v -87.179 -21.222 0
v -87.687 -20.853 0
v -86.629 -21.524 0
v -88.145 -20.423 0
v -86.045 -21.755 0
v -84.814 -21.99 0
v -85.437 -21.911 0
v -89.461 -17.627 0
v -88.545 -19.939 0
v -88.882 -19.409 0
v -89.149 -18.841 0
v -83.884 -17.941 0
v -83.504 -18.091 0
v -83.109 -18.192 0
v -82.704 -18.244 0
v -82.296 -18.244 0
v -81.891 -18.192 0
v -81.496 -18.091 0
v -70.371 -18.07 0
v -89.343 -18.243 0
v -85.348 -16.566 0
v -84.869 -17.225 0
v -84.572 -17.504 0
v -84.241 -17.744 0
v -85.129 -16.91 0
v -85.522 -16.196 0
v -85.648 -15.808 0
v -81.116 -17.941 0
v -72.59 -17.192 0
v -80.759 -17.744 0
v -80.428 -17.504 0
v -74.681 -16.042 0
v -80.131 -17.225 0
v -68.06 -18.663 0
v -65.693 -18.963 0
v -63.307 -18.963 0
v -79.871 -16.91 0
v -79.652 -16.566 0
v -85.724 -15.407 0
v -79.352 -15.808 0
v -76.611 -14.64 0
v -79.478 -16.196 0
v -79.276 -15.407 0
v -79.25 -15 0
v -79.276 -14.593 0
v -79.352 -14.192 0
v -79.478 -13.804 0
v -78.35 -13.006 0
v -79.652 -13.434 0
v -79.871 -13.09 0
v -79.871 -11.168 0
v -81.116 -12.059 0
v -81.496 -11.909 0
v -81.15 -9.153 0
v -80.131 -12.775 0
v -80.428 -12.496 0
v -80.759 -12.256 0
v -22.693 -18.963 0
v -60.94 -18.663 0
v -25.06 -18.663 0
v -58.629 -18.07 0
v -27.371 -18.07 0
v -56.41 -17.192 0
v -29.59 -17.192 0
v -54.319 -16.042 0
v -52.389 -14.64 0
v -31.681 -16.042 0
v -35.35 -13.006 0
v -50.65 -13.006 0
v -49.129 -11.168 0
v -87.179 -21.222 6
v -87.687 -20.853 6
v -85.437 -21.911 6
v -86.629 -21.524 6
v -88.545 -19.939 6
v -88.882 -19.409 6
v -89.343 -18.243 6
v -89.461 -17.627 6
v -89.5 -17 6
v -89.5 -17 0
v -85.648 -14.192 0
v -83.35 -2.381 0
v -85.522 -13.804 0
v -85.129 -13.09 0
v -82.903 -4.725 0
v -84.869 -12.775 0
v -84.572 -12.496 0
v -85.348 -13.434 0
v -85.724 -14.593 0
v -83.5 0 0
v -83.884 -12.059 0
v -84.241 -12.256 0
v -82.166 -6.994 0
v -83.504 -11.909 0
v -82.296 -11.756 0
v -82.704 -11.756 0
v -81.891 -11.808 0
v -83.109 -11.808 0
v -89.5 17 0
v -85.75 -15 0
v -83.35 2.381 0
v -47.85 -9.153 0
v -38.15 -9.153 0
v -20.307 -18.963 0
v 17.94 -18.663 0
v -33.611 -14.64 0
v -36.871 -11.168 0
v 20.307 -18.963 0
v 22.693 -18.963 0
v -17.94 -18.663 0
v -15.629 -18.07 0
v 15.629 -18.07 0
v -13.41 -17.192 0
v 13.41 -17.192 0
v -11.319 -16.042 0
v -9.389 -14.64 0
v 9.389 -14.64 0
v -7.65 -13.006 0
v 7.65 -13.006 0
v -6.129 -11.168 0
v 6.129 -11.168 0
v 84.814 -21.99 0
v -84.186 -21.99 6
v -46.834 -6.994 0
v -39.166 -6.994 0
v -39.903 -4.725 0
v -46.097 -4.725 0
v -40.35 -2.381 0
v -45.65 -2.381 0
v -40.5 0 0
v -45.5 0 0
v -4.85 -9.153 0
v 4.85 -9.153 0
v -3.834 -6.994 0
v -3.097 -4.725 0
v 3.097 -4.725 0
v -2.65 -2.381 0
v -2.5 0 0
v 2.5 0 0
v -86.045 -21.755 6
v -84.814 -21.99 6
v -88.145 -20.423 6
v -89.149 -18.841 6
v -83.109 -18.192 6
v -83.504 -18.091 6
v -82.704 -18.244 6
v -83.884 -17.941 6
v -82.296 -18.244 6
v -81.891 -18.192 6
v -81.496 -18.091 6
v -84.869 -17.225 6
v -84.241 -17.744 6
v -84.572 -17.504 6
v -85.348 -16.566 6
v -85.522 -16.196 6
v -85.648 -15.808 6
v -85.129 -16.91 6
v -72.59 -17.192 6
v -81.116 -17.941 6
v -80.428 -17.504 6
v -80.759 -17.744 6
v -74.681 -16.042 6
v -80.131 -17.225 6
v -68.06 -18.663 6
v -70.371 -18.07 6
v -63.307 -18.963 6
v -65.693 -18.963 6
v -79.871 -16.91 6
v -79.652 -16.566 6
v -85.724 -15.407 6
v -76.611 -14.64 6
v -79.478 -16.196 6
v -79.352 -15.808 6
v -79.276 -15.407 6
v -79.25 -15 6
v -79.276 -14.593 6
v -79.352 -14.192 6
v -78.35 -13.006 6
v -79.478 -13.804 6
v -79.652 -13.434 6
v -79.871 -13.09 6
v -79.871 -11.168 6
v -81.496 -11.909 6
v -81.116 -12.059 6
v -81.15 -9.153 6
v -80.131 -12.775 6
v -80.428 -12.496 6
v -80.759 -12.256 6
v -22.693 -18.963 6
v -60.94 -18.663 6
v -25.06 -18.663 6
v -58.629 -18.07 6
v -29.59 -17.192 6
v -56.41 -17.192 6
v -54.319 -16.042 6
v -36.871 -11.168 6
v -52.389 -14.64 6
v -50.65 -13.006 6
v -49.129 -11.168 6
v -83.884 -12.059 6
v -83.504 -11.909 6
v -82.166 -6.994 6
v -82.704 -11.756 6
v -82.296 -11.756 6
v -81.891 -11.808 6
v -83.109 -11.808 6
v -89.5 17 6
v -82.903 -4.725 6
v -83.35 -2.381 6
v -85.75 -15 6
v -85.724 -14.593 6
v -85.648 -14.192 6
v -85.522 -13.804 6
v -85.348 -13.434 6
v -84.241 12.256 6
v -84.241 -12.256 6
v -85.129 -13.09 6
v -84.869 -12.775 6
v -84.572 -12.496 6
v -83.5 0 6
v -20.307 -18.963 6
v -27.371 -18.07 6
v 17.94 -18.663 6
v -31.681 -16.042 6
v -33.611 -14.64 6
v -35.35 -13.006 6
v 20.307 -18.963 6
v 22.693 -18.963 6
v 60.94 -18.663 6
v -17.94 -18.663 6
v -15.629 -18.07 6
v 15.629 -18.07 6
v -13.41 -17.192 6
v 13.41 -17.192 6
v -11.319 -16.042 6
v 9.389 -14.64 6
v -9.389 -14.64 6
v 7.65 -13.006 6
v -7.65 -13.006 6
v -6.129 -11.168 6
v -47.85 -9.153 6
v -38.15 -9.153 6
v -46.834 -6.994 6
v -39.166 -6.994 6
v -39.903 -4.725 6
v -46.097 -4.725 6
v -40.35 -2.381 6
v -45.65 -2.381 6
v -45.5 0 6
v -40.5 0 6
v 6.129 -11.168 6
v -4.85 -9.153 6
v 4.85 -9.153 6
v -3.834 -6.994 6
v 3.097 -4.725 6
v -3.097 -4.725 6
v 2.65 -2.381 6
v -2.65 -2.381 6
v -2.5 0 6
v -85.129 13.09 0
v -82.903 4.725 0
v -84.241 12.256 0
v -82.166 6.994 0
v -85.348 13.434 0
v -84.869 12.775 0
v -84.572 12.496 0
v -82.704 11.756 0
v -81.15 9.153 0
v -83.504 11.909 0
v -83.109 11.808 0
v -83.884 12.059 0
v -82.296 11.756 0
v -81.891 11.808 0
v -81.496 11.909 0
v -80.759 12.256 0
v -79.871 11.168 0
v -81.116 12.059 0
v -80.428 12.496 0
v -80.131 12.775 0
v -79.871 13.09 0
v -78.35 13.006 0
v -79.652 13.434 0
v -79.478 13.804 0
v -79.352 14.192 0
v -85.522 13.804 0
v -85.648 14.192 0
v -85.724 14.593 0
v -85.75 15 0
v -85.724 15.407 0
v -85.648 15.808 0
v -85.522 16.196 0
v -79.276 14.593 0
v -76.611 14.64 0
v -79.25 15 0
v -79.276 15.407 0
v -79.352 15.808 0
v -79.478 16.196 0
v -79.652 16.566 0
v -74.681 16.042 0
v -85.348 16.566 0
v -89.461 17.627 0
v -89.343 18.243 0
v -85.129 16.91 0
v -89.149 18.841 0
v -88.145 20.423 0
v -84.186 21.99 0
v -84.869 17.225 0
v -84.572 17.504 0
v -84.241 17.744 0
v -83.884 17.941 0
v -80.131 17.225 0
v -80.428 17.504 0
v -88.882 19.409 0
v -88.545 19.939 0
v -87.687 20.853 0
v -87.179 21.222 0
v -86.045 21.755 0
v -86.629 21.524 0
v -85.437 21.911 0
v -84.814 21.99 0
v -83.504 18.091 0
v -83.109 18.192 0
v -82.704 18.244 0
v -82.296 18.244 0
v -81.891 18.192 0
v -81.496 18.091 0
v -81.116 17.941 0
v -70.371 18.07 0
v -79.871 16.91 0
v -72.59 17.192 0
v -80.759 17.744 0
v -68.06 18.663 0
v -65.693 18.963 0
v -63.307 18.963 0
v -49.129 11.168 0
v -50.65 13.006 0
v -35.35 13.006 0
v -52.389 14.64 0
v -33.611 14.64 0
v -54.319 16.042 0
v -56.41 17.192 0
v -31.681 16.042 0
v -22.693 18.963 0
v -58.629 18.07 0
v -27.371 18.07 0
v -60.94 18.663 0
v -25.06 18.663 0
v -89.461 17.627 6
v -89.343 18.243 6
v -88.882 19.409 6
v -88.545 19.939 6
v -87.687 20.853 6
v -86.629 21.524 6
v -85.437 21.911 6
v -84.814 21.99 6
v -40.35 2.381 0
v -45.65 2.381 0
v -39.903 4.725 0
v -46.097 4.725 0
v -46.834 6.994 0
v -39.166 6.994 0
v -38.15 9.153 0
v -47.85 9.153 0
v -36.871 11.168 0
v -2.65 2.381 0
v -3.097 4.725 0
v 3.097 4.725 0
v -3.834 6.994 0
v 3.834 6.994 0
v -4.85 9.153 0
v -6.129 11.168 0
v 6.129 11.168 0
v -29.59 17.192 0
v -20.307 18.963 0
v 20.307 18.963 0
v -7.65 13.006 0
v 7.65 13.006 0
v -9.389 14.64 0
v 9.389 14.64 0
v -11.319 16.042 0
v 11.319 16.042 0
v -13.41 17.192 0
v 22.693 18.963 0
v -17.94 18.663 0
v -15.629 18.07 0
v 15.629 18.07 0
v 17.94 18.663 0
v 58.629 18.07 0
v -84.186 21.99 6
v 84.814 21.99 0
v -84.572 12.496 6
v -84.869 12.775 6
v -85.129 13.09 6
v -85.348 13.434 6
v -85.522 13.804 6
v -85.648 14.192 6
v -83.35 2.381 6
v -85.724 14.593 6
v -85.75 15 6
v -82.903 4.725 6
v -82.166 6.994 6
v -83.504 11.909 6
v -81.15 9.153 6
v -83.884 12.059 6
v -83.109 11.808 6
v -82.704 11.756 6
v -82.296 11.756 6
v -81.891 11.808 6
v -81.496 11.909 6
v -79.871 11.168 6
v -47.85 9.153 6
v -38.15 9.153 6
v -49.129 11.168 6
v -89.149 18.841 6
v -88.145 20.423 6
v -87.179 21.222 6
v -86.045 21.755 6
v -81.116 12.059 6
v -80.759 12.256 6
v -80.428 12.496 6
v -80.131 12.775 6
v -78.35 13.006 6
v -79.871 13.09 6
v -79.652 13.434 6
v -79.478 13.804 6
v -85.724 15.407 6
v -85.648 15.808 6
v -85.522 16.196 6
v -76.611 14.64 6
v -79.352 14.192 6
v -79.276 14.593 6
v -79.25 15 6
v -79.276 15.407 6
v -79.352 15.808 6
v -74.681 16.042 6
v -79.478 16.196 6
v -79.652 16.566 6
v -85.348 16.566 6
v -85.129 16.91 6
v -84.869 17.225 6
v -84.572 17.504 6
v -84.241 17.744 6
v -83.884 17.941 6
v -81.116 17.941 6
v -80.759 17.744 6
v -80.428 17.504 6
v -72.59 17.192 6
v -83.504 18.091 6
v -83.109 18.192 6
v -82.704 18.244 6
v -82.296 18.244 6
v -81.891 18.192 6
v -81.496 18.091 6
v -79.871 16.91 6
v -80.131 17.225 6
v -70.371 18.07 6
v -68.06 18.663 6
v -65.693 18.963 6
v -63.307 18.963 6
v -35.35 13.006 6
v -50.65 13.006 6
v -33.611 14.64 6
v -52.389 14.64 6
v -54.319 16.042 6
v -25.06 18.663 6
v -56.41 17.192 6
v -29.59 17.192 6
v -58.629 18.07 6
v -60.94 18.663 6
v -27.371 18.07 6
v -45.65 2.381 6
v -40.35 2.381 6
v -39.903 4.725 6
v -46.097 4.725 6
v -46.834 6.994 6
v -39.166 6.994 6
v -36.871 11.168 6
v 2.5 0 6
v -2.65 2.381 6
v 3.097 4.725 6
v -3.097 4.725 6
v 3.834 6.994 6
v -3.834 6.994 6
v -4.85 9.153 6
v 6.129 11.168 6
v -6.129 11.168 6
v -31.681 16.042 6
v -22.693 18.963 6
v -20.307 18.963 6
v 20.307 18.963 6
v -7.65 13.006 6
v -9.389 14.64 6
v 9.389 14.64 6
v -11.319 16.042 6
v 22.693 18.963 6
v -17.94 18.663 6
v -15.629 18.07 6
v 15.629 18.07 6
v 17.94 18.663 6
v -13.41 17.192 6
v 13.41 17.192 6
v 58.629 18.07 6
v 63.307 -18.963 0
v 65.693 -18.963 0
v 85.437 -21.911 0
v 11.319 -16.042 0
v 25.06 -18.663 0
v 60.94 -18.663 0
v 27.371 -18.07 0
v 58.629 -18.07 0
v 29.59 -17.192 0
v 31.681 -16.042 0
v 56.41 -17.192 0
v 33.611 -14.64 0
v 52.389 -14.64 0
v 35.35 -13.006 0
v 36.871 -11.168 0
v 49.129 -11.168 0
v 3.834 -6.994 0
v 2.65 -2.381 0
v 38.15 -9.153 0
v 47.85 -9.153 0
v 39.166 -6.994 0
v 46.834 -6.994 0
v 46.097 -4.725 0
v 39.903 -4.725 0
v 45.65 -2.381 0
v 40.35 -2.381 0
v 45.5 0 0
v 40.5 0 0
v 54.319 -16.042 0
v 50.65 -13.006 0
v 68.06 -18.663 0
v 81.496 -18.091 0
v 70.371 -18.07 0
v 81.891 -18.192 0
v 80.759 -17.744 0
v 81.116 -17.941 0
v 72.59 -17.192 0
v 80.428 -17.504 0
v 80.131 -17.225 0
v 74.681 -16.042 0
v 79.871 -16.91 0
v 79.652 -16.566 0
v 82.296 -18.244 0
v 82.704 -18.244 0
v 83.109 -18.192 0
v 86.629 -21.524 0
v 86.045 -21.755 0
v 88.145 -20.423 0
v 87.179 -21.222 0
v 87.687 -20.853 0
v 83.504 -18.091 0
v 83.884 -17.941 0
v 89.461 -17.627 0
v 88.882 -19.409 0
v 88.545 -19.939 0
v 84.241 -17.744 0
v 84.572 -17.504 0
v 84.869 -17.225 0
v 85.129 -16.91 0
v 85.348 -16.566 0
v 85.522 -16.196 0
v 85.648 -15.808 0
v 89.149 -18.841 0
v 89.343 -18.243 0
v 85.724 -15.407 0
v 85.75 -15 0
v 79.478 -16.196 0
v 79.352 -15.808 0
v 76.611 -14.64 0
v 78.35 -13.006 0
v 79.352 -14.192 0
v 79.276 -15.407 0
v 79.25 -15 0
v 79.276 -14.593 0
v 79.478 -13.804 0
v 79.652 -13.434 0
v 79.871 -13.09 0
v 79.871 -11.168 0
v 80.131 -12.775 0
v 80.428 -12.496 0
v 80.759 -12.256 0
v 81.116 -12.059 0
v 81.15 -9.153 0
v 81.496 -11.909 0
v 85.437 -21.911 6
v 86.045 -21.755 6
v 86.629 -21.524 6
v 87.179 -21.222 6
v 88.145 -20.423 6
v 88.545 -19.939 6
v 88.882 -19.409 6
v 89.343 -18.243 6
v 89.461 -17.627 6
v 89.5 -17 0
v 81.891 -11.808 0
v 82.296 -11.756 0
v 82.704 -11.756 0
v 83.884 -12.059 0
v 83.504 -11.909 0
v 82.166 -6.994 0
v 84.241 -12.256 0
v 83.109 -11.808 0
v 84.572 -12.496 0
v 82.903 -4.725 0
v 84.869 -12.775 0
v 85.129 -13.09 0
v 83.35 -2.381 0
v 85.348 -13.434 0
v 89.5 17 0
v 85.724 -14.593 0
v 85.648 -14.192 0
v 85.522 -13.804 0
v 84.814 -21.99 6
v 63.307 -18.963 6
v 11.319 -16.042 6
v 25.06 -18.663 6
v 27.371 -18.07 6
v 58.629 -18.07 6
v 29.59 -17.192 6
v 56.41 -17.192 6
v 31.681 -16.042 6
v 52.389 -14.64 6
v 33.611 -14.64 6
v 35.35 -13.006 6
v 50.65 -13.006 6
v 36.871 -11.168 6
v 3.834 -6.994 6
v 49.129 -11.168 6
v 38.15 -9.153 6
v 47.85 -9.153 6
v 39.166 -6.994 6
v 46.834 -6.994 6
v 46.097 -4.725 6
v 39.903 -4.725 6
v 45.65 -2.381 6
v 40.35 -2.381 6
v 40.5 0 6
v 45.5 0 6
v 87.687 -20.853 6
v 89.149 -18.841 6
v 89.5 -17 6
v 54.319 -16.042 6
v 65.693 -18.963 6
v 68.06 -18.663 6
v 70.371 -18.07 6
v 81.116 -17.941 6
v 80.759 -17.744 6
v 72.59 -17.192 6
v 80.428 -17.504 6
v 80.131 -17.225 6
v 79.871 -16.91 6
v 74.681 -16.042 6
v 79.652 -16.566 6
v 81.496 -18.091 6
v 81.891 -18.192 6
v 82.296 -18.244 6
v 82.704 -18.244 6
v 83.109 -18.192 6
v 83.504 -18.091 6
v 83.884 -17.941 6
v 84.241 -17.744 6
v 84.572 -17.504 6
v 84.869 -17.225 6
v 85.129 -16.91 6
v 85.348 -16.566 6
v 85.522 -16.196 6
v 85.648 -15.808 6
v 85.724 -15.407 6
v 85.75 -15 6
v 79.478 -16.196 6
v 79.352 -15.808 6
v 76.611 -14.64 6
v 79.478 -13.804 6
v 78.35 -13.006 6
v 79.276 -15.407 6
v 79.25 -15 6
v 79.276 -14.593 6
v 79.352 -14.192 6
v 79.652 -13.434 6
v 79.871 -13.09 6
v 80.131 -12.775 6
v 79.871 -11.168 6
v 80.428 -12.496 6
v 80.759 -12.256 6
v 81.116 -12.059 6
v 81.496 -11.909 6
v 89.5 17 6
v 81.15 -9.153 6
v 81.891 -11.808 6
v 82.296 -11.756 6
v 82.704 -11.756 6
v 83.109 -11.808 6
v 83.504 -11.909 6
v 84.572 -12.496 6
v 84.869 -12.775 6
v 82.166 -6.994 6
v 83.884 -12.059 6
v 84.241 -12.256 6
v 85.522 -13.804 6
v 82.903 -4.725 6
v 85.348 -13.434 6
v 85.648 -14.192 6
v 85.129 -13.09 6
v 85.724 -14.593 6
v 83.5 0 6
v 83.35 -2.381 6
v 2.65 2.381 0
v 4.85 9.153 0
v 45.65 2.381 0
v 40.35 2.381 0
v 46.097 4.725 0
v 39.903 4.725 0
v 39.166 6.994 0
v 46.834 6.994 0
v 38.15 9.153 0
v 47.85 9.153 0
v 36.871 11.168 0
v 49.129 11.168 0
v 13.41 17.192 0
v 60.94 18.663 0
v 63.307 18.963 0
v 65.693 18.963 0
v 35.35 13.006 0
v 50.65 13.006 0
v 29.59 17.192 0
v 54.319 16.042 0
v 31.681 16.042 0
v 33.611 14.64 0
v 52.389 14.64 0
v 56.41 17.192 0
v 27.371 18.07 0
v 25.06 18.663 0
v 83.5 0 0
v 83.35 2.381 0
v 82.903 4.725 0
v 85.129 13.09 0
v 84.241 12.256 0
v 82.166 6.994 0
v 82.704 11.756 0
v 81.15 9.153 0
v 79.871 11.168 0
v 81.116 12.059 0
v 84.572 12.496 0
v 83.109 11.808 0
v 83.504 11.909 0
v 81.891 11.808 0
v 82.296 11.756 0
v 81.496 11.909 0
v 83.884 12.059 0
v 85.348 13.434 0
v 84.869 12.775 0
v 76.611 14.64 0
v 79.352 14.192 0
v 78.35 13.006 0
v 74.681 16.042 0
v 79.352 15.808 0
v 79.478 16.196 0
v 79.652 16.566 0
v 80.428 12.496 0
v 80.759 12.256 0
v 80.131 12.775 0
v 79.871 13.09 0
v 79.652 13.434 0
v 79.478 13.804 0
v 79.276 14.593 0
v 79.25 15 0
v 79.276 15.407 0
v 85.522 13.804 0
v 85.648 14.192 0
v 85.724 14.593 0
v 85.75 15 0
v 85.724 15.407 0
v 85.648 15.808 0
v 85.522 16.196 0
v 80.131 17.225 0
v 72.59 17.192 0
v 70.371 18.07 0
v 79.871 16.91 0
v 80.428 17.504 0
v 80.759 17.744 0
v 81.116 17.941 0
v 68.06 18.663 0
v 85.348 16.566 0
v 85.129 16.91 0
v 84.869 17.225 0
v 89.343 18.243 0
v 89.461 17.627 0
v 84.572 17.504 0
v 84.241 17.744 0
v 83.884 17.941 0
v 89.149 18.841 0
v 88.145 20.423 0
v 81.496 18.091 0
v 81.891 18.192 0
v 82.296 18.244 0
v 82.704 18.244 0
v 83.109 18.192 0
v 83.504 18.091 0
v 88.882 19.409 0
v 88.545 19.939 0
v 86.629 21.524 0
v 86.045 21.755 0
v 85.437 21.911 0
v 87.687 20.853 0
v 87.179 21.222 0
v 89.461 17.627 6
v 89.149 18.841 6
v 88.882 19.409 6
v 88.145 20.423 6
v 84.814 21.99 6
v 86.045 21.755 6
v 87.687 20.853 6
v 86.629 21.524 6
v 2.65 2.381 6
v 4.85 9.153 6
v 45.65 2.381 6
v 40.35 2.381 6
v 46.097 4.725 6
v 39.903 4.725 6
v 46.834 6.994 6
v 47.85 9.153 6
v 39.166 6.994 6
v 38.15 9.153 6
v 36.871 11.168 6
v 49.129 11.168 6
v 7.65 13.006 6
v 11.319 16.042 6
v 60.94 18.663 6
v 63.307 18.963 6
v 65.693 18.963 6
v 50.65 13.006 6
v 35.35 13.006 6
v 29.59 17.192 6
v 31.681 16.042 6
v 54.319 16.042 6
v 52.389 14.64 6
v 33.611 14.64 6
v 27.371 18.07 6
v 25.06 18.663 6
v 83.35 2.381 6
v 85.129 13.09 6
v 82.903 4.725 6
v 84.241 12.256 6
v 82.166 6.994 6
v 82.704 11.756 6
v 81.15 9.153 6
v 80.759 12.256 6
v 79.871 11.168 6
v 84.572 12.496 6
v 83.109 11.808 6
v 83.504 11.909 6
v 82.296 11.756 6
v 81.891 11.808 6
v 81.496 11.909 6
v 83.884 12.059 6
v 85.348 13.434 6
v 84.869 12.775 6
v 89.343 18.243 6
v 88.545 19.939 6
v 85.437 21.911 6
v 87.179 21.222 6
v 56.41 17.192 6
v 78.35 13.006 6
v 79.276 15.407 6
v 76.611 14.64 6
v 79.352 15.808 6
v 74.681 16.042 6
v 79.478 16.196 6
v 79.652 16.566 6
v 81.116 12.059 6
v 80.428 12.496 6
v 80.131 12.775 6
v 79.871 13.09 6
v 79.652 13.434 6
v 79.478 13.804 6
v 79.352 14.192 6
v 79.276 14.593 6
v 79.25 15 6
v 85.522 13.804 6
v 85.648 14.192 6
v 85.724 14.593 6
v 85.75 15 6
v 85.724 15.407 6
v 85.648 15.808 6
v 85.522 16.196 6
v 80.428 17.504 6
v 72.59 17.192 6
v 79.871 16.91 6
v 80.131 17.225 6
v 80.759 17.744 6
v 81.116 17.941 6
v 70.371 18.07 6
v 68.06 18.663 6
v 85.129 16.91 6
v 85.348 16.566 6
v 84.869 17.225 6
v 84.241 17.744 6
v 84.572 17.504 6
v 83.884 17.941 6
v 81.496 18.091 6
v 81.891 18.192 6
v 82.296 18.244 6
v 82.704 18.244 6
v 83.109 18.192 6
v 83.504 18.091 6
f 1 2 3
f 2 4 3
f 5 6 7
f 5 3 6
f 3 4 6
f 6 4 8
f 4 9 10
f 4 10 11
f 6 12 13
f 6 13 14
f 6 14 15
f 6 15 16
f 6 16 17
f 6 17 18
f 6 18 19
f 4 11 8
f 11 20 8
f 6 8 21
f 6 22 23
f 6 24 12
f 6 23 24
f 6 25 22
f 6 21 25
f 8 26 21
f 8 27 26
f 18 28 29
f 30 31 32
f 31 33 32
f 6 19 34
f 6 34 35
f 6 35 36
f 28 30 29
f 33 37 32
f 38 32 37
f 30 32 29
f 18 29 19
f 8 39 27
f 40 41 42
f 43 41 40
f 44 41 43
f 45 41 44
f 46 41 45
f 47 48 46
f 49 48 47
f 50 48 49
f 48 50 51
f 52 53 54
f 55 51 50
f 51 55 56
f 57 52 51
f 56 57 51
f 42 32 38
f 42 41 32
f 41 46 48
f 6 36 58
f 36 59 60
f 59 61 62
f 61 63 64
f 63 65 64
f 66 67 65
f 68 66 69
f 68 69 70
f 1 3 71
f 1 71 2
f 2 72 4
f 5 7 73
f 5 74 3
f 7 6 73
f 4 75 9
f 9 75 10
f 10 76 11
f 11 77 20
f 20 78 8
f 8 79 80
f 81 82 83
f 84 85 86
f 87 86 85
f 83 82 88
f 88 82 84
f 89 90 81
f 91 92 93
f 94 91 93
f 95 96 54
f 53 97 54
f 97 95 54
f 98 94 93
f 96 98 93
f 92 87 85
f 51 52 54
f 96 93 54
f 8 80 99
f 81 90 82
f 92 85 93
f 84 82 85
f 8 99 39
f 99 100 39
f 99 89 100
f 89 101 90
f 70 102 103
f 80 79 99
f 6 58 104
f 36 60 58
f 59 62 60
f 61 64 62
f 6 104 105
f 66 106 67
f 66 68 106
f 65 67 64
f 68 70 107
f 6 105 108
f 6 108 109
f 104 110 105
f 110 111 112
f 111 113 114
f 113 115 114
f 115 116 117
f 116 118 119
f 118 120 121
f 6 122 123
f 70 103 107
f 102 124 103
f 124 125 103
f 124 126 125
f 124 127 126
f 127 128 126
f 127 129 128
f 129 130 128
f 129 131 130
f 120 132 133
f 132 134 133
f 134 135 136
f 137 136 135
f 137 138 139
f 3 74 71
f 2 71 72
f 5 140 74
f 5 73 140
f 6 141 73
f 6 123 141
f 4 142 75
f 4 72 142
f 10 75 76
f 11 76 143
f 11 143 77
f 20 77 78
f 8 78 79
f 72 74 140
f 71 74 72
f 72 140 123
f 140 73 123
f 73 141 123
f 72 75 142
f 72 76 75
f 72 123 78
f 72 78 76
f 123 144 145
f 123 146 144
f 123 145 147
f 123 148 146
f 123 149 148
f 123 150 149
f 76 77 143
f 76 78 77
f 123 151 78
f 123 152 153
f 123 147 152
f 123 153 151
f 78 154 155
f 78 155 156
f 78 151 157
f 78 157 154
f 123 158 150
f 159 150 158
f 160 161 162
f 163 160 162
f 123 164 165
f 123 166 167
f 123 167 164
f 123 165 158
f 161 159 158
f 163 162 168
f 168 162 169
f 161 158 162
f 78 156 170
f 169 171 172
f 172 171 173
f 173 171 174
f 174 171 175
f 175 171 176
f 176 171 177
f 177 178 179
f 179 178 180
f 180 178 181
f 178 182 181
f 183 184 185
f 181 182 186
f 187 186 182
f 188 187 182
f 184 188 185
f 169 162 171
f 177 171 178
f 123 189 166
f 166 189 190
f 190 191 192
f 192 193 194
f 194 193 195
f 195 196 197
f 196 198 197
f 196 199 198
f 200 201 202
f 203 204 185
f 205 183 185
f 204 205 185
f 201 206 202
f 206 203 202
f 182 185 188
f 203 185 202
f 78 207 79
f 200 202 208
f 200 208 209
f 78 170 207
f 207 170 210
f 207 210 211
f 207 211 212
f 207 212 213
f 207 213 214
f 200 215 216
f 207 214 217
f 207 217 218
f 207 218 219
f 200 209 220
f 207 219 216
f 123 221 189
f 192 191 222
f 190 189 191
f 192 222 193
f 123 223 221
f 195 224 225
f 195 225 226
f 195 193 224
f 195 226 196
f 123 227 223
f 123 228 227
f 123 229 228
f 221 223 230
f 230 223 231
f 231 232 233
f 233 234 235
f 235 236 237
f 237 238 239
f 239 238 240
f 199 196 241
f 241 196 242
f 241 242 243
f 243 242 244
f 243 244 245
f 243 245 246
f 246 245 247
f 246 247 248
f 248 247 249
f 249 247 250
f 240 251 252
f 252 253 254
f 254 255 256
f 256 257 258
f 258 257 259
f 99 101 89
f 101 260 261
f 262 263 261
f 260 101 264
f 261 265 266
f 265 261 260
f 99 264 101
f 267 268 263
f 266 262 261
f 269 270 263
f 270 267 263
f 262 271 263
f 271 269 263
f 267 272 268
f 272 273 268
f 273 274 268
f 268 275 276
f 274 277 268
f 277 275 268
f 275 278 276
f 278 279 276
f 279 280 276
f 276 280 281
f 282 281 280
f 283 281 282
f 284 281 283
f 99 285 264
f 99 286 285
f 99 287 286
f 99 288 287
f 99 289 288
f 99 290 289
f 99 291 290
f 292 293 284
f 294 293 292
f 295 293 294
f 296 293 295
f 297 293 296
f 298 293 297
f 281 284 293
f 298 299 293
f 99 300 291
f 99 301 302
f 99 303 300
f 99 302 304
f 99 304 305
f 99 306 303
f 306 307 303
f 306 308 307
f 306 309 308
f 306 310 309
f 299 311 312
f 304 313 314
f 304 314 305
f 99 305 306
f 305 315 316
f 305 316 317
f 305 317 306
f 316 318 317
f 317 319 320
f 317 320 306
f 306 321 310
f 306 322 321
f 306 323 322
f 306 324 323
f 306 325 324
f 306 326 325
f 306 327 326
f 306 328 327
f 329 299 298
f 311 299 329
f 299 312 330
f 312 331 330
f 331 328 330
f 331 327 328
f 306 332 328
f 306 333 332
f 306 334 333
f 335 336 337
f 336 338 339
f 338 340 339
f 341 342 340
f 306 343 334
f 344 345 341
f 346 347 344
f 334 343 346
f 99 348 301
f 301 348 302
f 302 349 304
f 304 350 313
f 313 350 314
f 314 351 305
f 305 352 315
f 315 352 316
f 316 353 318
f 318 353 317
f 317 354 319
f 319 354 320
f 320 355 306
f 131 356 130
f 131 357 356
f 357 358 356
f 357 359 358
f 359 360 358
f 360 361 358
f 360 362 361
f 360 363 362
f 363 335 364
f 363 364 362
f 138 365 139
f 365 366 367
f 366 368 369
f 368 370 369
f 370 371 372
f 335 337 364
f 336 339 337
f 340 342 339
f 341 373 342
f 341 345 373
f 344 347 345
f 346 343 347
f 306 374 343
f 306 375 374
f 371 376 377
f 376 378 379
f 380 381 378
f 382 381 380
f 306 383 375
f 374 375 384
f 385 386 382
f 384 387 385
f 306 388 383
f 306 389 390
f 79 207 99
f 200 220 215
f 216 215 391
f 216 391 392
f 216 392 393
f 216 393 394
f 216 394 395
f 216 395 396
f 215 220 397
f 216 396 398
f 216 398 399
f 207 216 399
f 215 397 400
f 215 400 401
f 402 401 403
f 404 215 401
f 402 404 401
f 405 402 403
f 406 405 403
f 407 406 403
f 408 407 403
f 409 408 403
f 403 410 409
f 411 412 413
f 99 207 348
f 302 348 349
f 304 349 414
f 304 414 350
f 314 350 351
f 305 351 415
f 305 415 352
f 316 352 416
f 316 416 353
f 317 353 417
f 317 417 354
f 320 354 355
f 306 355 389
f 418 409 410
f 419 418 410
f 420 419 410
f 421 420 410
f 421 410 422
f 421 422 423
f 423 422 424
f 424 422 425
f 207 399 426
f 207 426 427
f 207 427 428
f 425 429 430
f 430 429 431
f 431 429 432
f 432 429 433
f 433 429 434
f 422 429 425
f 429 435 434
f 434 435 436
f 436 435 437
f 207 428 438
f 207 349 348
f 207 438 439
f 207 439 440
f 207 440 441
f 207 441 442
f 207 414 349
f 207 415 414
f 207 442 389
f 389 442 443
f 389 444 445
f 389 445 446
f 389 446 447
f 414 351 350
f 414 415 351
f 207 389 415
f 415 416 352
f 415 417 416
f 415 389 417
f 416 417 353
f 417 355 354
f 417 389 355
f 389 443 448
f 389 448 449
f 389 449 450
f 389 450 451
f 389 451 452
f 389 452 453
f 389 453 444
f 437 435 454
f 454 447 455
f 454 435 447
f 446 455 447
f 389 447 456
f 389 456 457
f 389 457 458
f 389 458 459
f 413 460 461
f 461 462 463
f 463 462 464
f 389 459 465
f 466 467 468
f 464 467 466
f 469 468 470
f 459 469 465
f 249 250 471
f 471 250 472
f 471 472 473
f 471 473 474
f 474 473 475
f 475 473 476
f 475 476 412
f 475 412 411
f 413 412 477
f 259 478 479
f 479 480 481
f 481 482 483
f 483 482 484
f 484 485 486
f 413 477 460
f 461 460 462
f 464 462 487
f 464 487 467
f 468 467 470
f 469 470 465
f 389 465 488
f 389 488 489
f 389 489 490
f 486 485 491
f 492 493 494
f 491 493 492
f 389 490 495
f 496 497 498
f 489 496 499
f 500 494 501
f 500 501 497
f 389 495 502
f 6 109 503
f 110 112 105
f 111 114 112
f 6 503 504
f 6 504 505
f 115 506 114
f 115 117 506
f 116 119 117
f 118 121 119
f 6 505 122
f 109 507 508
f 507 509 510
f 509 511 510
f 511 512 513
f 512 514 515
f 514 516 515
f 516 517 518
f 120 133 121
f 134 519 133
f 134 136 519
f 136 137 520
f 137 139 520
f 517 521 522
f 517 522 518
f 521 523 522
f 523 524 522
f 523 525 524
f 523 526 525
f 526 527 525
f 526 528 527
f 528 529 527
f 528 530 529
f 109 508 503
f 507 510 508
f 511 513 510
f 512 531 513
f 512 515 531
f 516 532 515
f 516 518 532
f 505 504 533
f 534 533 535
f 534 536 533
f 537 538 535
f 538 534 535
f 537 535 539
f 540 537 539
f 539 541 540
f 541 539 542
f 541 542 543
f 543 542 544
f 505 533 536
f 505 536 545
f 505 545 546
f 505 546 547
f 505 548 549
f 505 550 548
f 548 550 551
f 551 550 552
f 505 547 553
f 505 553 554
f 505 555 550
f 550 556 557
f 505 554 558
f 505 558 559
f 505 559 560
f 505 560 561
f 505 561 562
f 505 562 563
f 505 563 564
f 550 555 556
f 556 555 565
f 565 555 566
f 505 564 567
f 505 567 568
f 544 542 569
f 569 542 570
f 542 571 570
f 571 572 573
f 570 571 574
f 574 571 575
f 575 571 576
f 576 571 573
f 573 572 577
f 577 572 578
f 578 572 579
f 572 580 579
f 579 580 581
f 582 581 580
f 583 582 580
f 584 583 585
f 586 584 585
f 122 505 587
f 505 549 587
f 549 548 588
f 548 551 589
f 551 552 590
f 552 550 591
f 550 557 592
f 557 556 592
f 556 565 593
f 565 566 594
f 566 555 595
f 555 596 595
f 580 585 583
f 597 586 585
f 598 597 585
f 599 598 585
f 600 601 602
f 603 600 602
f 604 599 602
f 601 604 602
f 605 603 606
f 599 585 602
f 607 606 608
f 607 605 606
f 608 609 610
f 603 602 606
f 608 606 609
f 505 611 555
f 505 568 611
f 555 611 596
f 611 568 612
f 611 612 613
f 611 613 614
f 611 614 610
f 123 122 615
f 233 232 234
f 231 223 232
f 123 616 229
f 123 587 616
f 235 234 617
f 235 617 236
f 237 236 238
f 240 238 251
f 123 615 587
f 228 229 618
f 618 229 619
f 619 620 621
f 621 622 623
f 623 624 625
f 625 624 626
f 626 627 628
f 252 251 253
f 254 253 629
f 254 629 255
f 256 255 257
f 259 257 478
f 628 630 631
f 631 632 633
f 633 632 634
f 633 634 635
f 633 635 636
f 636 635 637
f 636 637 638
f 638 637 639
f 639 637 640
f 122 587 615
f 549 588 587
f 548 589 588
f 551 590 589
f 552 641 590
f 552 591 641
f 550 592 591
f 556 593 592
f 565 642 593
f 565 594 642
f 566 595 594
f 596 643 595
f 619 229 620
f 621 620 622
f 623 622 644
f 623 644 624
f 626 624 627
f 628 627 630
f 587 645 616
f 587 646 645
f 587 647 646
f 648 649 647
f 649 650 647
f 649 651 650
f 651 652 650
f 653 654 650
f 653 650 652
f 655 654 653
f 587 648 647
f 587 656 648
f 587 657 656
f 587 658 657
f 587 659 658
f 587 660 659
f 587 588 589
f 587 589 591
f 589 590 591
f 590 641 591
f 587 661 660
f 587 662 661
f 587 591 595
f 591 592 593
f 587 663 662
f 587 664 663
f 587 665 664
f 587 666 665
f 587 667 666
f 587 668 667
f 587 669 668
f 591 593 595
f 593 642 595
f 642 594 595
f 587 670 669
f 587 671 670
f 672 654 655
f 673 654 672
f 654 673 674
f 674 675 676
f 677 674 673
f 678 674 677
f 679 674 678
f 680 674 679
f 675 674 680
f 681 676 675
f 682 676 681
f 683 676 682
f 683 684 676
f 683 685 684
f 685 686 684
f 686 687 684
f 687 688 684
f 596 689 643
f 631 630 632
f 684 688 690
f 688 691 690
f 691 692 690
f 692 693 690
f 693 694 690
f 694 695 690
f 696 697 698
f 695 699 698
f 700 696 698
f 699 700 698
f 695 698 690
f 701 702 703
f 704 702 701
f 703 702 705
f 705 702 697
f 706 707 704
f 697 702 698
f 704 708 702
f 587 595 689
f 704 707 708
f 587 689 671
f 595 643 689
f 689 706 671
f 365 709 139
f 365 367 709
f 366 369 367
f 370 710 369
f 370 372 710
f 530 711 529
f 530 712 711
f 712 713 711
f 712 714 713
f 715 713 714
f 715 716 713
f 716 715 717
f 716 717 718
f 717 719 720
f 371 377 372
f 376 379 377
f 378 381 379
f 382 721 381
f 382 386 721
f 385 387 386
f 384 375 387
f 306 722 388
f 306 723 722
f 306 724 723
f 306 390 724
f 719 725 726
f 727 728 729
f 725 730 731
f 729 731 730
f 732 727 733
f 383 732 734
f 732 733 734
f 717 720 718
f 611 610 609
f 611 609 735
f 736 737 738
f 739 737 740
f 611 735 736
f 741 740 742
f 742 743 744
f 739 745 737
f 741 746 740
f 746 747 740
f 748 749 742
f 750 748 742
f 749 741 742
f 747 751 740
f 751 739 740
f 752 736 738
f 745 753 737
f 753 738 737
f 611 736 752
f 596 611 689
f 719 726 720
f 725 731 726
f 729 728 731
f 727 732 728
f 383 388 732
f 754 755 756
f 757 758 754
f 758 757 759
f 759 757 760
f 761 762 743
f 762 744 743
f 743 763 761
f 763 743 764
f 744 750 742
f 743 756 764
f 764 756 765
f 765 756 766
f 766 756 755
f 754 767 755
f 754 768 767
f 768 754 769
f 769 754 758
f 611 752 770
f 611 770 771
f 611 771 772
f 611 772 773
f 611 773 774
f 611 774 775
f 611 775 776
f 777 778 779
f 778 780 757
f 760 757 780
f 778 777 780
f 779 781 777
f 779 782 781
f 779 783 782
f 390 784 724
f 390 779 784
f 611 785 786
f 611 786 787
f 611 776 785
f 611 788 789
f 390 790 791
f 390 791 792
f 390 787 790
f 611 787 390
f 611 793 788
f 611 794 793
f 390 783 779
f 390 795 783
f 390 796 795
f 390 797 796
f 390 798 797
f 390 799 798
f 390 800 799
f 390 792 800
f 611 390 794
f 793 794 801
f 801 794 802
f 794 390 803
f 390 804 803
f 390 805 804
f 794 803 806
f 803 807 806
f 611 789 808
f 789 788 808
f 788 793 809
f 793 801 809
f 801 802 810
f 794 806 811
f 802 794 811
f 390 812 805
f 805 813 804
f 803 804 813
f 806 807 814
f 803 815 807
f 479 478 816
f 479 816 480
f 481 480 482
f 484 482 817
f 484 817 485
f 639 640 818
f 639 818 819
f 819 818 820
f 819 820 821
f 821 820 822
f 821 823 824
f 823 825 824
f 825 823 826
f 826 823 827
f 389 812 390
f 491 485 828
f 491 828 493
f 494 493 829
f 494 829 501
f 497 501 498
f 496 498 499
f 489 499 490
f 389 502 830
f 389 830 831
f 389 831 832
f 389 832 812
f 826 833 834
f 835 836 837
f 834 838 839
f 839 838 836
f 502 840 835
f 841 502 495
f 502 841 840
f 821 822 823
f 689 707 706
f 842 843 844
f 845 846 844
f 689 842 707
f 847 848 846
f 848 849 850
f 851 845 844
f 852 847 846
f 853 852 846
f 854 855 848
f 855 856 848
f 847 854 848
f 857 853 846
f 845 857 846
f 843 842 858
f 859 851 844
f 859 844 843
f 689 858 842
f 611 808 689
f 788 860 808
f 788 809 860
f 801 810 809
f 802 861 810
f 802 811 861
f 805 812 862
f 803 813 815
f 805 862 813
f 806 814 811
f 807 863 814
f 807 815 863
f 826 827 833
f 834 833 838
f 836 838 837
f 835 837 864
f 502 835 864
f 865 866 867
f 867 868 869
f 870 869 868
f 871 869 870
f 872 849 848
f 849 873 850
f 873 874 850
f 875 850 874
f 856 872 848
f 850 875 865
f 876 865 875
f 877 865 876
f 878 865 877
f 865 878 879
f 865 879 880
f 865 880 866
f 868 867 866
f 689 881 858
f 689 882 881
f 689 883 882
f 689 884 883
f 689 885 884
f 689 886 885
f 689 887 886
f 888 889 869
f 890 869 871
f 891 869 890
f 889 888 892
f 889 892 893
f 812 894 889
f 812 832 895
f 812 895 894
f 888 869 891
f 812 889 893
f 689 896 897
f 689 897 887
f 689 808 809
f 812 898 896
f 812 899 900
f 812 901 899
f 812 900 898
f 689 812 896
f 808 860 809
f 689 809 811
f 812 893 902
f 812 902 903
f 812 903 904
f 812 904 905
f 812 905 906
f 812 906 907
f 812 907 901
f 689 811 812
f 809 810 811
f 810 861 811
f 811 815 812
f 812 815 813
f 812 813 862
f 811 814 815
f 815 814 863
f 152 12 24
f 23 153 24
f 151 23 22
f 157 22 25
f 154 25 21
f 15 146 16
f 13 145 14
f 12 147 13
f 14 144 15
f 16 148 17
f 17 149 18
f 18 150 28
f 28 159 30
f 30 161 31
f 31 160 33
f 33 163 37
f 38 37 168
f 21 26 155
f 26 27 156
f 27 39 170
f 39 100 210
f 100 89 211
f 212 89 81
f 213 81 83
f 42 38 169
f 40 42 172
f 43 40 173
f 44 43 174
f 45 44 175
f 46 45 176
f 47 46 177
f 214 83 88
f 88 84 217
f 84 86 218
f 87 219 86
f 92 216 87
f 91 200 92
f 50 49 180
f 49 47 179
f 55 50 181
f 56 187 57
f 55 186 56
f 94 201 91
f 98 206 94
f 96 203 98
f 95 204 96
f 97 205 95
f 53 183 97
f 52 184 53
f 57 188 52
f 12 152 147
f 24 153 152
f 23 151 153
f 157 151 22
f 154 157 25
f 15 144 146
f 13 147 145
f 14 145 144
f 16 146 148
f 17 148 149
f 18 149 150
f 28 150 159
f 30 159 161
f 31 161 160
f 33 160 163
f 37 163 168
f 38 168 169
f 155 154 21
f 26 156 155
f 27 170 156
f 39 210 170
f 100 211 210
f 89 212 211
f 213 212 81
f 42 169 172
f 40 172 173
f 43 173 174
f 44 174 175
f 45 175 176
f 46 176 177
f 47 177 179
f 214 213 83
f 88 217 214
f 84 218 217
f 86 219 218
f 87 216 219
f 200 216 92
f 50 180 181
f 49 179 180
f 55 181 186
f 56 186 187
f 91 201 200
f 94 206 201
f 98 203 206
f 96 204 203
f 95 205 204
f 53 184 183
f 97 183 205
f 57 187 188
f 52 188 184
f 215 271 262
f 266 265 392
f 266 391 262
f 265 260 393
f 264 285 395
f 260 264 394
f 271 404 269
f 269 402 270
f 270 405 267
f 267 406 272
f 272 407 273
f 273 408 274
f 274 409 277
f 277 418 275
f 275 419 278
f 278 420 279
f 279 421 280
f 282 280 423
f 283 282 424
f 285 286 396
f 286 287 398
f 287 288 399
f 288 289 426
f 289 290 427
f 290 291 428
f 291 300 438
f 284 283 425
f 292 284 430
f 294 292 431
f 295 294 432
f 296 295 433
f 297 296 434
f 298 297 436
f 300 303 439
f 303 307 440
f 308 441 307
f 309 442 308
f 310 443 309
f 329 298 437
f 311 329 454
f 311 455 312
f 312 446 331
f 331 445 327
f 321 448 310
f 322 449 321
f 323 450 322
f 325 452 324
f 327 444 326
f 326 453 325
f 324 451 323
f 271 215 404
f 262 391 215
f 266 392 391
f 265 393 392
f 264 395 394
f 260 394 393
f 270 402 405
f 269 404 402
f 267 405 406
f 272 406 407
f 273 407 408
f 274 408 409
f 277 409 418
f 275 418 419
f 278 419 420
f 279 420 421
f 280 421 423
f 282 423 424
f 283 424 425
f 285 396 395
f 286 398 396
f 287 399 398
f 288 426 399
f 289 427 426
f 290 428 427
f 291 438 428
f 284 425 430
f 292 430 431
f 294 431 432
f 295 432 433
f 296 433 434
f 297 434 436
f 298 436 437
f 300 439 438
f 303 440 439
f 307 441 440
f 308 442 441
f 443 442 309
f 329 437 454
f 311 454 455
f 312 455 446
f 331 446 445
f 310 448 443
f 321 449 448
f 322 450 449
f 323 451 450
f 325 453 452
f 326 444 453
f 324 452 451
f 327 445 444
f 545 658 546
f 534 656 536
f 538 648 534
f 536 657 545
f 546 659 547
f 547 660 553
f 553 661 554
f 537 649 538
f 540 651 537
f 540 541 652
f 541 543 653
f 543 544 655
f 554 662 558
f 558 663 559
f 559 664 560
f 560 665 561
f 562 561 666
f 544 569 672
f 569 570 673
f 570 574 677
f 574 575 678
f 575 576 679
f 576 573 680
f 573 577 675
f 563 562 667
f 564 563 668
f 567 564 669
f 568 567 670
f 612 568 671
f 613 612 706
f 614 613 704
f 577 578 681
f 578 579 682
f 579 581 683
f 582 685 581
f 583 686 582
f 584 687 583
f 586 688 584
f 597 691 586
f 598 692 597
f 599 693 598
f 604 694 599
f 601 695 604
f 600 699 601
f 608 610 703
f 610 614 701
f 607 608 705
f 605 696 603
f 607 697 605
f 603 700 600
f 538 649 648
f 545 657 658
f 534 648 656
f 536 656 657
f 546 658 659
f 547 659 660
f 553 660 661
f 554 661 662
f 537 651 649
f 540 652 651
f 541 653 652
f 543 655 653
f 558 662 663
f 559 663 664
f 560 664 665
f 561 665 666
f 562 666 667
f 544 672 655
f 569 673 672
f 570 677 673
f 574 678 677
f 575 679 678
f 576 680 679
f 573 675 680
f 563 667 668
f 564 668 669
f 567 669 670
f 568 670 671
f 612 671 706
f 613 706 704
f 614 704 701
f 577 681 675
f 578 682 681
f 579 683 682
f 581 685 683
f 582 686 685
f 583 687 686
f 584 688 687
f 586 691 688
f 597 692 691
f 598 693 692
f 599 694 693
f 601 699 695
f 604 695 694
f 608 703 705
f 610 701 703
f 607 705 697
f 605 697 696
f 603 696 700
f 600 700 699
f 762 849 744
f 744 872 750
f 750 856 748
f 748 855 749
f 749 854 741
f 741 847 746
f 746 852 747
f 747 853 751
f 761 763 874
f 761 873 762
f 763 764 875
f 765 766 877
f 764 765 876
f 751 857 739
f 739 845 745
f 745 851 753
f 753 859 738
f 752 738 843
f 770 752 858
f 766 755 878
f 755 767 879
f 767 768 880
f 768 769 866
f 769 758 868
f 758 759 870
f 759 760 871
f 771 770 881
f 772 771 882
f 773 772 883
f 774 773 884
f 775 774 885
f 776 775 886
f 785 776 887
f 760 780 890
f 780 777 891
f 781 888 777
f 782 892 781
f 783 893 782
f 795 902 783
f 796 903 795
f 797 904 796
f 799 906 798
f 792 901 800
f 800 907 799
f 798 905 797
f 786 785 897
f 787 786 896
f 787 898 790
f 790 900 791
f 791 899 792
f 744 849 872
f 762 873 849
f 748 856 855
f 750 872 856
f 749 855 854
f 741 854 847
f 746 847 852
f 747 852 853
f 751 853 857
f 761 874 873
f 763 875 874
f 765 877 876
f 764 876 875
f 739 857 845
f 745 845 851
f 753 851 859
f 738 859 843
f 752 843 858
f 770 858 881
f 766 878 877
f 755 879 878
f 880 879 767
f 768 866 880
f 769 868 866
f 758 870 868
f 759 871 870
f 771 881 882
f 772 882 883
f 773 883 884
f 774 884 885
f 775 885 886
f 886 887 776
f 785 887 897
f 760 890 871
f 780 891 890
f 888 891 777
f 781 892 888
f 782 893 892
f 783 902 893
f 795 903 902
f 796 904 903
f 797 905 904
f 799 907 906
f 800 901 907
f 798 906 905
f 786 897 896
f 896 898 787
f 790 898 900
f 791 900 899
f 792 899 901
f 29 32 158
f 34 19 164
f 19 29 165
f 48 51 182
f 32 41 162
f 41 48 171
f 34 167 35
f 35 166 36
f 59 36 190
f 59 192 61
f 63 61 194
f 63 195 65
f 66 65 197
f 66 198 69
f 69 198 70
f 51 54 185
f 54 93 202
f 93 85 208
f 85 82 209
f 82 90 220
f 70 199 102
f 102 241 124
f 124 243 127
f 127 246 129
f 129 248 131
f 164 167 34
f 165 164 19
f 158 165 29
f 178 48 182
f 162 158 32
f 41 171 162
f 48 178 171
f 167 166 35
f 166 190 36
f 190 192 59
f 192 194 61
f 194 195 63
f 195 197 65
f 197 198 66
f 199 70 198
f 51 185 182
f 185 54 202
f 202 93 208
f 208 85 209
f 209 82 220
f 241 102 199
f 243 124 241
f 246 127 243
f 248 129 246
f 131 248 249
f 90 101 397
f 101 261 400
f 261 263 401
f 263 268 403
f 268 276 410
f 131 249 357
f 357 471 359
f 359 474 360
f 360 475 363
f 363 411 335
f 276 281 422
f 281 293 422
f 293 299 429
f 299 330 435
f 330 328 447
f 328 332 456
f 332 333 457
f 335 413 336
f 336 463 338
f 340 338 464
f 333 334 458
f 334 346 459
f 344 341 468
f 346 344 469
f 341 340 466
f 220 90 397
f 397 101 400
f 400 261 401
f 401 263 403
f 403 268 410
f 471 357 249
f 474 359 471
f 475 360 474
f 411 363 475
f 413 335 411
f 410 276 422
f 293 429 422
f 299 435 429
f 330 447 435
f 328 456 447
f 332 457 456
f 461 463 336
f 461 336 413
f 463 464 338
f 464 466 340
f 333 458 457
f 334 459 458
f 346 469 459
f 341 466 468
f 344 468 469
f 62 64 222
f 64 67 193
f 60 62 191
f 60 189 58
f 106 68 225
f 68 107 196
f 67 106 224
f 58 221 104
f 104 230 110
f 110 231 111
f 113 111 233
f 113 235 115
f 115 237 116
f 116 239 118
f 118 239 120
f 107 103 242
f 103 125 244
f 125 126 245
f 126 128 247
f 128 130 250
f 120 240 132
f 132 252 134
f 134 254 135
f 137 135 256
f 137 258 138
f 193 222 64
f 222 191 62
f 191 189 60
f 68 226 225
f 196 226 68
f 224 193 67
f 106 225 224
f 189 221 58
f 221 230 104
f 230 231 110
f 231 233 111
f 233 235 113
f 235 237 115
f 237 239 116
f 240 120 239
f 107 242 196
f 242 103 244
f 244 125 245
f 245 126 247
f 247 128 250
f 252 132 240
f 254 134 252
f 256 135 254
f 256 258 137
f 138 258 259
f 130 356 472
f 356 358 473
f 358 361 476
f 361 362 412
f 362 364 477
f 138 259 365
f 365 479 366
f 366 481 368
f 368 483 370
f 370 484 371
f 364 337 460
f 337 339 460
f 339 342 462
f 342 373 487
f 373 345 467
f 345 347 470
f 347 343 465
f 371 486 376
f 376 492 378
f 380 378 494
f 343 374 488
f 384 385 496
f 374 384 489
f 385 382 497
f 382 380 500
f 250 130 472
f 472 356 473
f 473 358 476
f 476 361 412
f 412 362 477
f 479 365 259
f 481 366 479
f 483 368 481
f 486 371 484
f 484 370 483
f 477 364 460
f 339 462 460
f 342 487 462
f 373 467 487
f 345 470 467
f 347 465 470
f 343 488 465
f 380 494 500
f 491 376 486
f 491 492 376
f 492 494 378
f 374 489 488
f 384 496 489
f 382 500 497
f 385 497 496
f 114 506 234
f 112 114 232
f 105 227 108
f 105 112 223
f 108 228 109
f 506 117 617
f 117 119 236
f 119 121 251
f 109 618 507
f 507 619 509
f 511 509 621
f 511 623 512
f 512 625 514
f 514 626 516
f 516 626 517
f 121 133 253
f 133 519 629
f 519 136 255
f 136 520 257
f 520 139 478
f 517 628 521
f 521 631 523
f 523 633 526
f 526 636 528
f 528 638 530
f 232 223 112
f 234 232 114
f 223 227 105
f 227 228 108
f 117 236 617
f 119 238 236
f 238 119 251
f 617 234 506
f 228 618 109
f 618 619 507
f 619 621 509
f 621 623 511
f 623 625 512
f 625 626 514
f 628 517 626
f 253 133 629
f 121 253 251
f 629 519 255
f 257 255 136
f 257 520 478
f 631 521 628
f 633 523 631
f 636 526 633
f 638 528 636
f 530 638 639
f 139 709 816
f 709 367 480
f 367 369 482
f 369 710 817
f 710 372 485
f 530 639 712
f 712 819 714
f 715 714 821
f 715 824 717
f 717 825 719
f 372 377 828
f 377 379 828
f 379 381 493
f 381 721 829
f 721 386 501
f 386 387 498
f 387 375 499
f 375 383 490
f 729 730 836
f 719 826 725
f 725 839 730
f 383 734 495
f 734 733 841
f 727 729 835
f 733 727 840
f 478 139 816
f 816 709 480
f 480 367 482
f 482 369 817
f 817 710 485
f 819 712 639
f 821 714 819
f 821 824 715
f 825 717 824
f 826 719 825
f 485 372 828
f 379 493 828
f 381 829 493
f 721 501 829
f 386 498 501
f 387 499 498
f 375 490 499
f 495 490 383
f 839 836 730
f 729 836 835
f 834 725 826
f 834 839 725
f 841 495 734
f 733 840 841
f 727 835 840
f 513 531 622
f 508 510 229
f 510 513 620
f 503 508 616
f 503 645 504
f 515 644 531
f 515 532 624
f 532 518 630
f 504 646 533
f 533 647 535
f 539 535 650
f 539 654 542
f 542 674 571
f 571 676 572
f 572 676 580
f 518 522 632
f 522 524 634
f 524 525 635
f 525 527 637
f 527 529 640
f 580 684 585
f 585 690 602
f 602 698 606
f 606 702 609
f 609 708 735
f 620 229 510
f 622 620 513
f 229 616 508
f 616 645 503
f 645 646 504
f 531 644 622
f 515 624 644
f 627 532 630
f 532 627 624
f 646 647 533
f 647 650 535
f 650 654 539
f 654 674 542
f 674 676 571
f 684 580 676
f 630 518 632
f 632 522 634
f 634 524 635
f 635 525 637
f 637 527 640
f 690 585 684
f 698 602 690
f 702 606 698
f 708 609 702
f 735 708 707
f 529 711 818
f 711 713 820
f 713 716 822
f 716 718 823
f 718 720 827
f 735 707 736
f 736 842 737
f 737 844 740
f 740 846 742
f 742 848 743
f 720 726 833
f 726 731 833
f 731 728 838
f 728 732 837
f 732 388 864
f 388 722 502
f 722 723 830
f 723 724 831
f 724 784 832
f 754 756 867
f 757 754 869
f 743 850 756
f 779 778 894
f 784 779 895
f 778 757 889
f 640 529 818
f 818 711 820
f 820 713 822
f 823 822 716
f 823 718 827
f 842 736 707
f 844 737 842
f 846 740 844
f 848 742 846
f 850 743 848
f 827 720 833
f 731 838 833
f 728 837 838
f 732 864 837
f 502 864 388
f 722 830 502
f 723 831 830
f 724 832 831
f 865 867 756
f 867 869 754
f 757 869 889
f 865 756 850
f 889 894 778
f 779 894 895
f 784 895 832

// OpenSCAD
$fn = 50;

difference() {
	union() {
		hull() {
			translate(v = [-84.5, 17.0, 0]) {
				cylinder(h = 6, r = 5);
			}
			translate(v = [84.5, 17.0, 0]) {
				cylinder(h = 6, r = 5);
			}
			translate(v = [-84.5, -17.0, 0]) {
				cylinder(h = 6, r = 5);
			}
			translate(v = [84.5, -17.0, 0]) {
				cylinder(h = 6, r = 5);
			}
		}
	}
	union() {
		translate(v = [-82.5, -15.0, -100.0]) {
			cylinder(h = 200, r = 3.25);
		}
		translate(v = [-82.5, 15.0, -100.0]) {
			cylinder(h = 200, r = 3.25);
		}
		translate(v = [82.5, -15.0, -100.0]) {
			cylinder(h = 200, r = 3.25);
		}
		translate(v = [82.5, 15.0, -100.0]) {
			cylinder(h = 200, r = 3.25);
		}
		translate(v = [-82.5, -15.0, -100.0]) {
			cylinder(h = 200, r = 1.8);
		}
		translate(v = [-82.5, 15.0, -100.0]) {
			cylinder(h = 200, r = 1.8);
		}
		translate(v = [82.5, -15.0, -100.0]) {
			cylinder(h = 200, r = 1.8);
		}
		translate(v = [82.5, 15.0, -100.0]) {
			cylinder(h = 200, r = 1.8);
		}
		translate(v = [-64.5, 0, 0.0]) {
			cylinder(h = 6, r = 19.0);
		}
		translate(v = [-21.5, 0, 0.0]) {
			cylinder(h = 6, r = 19.0);
		}
		translate(v = [21.5, 0, 0.0]) {
			cylinder(h = 6, r = 19.0);
		}
		translate(v = [64.5, 0, 0.0]) {
			cylinder(h = 6, r = 19.0);
		}
	}
}
